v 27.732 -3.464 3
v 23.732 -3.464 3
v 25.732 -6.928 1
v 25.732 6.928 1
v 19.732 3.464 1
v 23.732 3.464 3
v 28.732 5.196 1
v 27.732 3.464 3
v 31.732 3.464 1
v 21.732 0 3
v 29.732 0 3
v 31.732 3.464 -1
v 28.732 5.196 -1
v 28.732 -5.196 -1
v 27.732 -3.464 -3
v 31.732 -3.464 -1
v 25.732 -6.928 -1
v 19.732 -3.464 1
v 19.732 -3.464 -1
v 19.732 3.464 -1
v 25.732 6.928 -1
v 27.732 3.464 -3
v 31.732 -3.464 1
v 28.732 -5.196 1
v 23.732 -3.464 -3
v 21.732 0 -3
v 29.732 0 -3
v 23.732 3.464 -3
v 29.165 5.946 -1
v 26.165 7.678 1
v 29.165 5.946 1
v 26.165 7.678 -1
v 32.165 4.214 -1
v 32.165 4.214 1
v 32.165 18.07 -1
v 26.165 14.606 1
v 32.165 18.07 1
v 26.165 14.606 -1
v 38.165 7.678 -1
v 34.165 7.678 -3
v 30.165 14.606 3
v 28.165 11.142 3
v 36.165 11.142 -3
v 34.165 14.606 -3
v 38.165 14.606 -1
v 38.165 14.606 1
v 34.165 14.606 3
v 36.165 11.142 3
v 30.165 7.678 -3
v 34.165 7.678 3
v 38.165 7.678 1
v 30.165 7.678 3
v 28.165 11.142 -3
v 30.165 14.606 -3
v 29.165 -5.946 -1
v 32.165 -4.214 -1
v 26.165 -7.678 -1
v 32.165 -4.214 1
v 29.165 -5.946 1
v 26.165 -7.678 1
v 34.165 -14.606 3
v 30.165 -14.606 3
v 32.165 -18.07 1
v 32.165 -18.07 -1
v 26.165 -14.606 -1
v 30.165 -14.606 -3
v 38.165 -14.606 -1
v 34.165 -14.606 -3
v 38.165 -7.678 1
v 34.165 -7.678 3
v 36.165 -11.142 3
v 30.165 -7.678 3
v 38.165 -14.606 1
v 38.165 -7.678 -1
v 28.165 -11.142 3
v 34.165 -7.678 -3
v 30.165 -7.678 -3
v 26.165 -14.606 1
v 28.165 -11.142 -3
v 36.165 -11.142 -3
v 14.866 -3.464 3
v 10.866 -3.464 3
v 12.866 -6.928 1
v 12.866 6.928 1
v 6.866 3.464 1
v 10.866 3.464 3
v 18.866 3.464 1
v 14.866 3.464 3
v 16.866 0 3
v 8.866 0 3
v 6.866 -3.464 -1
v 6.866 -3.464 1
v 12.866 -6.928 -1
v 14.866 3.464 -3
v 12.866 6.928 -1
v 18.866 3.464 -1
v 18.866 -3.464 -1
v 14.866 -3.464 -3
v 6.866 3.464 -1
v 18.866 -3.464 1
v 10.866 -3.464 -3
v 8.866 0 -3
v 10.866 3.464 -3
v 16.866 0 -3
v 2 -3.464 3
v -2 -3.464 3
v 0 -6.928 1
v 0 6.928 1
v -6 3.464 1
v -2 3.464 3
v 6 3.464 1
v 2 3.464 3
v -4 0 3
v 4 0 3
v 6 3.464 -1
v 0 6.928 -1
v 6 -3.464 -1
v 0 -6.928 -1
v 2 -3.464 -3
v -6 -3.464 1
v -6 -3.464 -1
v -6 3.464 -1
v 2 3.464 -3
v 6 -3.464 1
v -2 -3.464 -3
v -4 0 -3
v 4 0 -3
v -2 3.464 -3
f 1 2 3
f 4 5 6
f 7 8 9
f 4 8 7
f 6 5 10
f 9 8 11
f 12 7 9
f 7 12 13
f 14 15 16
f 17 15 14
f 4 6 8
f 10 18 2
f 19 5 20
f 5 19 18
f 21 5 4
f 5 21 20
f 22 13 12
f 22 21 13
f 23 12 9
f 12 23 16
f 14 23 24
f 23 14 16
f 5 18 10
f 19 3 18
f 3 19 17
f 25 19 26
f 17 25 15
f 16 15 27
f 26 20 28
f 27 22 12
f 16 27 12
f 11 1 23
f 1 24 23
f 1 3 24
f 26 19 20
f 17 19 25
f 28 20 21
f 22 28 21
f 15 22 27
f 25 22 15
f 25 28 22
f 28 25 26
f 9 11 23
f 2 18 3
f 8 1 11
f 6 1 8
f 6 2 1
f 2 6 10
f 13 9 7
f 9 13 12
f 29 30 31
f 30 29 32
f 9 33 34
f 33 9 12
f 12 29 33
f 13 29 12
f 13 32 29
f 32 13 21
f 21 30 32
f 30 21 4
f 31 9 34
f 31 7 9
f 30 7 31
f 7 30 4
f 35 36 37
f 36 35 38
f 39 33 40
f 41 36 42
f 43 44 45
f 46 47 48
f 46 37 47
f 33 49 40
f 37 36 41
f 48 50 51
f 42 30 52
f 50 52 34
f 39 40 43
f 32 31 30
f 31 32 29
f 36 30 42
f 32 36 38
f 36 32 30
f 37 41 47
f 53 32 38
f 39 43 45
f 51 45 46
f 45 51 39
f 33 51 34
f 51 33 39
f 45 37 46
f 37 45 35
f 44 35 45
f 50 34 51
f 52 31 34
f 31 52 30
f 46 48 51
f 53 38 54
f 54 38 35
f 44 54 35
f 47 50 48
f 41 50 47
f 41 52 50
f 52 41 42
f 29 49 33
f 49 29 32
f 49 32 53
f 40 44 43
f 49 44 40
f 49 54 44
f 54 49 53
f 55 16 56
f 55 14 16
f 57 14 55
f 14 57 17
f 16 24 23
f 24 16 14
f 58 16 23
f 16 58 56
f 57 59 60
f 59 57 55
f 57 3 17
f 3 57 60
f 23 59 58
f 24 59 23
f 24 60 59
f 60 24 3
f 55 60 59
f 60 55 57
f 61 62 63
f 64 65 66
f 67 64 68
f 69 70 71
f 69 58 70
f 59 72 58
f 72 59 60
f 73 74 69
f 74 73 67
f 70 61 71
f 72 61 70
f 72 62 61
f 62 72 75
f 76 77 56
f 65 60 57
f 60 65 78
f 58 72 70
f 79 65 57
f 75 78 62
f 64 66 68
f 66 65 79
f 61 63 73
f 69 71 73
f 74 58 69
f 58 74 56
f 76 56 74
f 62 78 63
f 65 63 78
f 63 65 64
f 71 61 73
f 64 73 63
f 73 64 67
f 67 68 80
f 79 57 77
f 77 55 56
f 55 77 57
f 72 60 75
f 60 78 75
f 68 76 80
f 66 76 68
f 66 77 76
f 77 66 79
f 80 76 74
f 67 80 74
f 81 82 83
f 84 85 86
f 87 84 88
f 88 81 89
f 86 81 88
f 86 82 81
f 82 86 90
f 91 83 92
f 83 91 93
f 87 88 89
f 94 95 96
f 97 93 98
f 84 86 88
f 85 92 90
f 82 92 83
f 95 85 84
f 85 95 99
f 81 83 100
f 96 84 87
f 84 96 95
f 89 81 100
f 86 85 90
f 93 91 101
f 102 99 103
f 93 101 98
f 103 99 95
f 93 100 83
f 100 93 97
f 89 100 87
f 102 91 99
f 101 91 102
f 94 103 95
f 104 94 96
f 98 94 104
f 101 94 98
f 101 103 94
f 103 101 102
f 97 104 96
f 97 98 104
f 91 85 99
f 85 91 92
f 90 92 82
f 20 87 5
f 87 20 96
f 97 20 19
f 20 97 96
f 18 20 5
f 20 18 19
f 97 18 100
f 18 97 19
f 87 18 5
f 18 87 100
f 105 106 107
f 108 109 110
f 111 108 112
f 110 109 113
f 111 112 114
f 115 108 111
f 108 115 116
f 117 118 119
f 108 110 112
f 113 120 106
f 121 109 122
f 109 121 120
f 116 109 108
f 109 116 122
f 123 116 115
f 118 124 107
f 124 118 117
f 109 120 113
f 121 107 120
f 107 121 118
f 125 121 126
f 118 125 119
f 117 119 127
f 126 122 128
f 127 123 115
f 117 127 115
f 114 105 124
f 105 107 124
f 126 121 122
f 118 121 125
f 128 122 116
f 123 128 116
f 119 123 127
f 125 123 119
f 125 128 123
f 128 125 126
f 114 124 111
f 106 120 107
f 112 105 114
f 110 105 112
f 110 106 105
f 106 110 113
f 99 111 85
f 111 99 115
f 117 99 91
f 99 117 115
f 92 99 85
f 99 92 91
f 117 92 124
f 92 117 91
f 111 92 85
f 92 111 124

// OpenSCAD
// file: gem-common.scad
angles = [for(i = [0:5]) i * (360 / 6)];

inner_poly_radius=8 * cos(60);
outer_poly_radius=8 * cos(30);
outer_poly_z=1;
inner_poly_z=3;


gap_between_gems = cos(30);
distance_to_corner = cos(30) * outer_poly_radius * 2 + gap_between_gems;


module edge_connector(angle = 0) {
    function make_point_2d(r, angle, height) = [r * sin(angle), height];
    
    points = [
        make_point_2d(outer_poly_radius, 30, outer_poly_z),
        make_point_2d(outer_poly_radius, -30, outer_poly_z),
        make_point_2d(outer_poly_radius, -30, -outer_poly_z),
        make_point_2d(outer_poly_radius, 30, -outer_poly_z),
    ];
    
    rotate([0,0,angle]) {
        translate([(distance_to_corner - gap_between_gems) / 2,0,0]){
            rotate([90, 0, 90]) {
                linear_extrude(gap_between_gems) {
                    polygon(points);
                }
            }
        }
    }
}

module move(distance, angle) {
    translate([distance * cos(angle), distance * sin(angle), 0]) {
        children();
    }
}


module corner_connector(angle=0) {
    r = 0.5;
    rotate_angle = angle + 30;
    move(outer_poly_radius + r, rotate_angle) {
        translate([0,0, -outer_poly_z]) {
            rotate([0,0,-rotate_angle]) {
                cylinder($fn=3, r=r, h=outer_poly_z * 2);
            }
        }
    }
}

module gem() {
    function make_point(r, angle, height) = [r * cos(angle), r * sin(angle), height];
    
    top_poly = [for(th = angles) make_point(inner_poly_radius, th, inner_poly_z)];
    top_outer_poly = [for(th = angles) make_point(outer_poly_radius, th + 30, outer_poly_z)];
    bottom_outer_poly = [for(th = angles) make_point(outer_poly_radius, th + 30, -outer_poly_z)];
    bottom_poly = [for(th = angles) make_point(inner_poly_radius, th, -inner_poly_z)];
 
    function rot(n, base) = (n + 1 - base) % 6 + base;
    
    faces = [
        [5, 4, 3, 2, 1, 0],
        for(i = [0:5]) [i, (i + 1) % 6, i + 6],
        for(i = [6:11]) [i, (i - 5) % 6, rot(i, 6)],
        for(i = [6:11]) [i, rot(i, 6), rot(i, 6) + 6, i + 6],
        for(i = [12:17]) [i, rot(i, 12), rot(i, 12) + 6],
        for(i = [18:23]) [i, i-6, rot(i, 18)],
        [18, 19, 20, 21, 22, 23],
    ];
    
    polyhedron(
        concat(
            top_poly,
            top_outer_poly,
            bottom_outer_poly,
            bottom_poly
        ),
        faces
    );
}
// main file
include <./gem-common.scad>

gem();
edge_connector(0);
move(distance_to_corner, 0) {
    gem();
    edge_connector(0);
    move(distance_to_corner, 0) {
        gem();
        edge_connector(60);
        move(distance_to_corner, 60) {
            gem();
        }
        edge_connector(-60);
        move(distance_to_corner, -60) {
            gem();
        }
    }
}
